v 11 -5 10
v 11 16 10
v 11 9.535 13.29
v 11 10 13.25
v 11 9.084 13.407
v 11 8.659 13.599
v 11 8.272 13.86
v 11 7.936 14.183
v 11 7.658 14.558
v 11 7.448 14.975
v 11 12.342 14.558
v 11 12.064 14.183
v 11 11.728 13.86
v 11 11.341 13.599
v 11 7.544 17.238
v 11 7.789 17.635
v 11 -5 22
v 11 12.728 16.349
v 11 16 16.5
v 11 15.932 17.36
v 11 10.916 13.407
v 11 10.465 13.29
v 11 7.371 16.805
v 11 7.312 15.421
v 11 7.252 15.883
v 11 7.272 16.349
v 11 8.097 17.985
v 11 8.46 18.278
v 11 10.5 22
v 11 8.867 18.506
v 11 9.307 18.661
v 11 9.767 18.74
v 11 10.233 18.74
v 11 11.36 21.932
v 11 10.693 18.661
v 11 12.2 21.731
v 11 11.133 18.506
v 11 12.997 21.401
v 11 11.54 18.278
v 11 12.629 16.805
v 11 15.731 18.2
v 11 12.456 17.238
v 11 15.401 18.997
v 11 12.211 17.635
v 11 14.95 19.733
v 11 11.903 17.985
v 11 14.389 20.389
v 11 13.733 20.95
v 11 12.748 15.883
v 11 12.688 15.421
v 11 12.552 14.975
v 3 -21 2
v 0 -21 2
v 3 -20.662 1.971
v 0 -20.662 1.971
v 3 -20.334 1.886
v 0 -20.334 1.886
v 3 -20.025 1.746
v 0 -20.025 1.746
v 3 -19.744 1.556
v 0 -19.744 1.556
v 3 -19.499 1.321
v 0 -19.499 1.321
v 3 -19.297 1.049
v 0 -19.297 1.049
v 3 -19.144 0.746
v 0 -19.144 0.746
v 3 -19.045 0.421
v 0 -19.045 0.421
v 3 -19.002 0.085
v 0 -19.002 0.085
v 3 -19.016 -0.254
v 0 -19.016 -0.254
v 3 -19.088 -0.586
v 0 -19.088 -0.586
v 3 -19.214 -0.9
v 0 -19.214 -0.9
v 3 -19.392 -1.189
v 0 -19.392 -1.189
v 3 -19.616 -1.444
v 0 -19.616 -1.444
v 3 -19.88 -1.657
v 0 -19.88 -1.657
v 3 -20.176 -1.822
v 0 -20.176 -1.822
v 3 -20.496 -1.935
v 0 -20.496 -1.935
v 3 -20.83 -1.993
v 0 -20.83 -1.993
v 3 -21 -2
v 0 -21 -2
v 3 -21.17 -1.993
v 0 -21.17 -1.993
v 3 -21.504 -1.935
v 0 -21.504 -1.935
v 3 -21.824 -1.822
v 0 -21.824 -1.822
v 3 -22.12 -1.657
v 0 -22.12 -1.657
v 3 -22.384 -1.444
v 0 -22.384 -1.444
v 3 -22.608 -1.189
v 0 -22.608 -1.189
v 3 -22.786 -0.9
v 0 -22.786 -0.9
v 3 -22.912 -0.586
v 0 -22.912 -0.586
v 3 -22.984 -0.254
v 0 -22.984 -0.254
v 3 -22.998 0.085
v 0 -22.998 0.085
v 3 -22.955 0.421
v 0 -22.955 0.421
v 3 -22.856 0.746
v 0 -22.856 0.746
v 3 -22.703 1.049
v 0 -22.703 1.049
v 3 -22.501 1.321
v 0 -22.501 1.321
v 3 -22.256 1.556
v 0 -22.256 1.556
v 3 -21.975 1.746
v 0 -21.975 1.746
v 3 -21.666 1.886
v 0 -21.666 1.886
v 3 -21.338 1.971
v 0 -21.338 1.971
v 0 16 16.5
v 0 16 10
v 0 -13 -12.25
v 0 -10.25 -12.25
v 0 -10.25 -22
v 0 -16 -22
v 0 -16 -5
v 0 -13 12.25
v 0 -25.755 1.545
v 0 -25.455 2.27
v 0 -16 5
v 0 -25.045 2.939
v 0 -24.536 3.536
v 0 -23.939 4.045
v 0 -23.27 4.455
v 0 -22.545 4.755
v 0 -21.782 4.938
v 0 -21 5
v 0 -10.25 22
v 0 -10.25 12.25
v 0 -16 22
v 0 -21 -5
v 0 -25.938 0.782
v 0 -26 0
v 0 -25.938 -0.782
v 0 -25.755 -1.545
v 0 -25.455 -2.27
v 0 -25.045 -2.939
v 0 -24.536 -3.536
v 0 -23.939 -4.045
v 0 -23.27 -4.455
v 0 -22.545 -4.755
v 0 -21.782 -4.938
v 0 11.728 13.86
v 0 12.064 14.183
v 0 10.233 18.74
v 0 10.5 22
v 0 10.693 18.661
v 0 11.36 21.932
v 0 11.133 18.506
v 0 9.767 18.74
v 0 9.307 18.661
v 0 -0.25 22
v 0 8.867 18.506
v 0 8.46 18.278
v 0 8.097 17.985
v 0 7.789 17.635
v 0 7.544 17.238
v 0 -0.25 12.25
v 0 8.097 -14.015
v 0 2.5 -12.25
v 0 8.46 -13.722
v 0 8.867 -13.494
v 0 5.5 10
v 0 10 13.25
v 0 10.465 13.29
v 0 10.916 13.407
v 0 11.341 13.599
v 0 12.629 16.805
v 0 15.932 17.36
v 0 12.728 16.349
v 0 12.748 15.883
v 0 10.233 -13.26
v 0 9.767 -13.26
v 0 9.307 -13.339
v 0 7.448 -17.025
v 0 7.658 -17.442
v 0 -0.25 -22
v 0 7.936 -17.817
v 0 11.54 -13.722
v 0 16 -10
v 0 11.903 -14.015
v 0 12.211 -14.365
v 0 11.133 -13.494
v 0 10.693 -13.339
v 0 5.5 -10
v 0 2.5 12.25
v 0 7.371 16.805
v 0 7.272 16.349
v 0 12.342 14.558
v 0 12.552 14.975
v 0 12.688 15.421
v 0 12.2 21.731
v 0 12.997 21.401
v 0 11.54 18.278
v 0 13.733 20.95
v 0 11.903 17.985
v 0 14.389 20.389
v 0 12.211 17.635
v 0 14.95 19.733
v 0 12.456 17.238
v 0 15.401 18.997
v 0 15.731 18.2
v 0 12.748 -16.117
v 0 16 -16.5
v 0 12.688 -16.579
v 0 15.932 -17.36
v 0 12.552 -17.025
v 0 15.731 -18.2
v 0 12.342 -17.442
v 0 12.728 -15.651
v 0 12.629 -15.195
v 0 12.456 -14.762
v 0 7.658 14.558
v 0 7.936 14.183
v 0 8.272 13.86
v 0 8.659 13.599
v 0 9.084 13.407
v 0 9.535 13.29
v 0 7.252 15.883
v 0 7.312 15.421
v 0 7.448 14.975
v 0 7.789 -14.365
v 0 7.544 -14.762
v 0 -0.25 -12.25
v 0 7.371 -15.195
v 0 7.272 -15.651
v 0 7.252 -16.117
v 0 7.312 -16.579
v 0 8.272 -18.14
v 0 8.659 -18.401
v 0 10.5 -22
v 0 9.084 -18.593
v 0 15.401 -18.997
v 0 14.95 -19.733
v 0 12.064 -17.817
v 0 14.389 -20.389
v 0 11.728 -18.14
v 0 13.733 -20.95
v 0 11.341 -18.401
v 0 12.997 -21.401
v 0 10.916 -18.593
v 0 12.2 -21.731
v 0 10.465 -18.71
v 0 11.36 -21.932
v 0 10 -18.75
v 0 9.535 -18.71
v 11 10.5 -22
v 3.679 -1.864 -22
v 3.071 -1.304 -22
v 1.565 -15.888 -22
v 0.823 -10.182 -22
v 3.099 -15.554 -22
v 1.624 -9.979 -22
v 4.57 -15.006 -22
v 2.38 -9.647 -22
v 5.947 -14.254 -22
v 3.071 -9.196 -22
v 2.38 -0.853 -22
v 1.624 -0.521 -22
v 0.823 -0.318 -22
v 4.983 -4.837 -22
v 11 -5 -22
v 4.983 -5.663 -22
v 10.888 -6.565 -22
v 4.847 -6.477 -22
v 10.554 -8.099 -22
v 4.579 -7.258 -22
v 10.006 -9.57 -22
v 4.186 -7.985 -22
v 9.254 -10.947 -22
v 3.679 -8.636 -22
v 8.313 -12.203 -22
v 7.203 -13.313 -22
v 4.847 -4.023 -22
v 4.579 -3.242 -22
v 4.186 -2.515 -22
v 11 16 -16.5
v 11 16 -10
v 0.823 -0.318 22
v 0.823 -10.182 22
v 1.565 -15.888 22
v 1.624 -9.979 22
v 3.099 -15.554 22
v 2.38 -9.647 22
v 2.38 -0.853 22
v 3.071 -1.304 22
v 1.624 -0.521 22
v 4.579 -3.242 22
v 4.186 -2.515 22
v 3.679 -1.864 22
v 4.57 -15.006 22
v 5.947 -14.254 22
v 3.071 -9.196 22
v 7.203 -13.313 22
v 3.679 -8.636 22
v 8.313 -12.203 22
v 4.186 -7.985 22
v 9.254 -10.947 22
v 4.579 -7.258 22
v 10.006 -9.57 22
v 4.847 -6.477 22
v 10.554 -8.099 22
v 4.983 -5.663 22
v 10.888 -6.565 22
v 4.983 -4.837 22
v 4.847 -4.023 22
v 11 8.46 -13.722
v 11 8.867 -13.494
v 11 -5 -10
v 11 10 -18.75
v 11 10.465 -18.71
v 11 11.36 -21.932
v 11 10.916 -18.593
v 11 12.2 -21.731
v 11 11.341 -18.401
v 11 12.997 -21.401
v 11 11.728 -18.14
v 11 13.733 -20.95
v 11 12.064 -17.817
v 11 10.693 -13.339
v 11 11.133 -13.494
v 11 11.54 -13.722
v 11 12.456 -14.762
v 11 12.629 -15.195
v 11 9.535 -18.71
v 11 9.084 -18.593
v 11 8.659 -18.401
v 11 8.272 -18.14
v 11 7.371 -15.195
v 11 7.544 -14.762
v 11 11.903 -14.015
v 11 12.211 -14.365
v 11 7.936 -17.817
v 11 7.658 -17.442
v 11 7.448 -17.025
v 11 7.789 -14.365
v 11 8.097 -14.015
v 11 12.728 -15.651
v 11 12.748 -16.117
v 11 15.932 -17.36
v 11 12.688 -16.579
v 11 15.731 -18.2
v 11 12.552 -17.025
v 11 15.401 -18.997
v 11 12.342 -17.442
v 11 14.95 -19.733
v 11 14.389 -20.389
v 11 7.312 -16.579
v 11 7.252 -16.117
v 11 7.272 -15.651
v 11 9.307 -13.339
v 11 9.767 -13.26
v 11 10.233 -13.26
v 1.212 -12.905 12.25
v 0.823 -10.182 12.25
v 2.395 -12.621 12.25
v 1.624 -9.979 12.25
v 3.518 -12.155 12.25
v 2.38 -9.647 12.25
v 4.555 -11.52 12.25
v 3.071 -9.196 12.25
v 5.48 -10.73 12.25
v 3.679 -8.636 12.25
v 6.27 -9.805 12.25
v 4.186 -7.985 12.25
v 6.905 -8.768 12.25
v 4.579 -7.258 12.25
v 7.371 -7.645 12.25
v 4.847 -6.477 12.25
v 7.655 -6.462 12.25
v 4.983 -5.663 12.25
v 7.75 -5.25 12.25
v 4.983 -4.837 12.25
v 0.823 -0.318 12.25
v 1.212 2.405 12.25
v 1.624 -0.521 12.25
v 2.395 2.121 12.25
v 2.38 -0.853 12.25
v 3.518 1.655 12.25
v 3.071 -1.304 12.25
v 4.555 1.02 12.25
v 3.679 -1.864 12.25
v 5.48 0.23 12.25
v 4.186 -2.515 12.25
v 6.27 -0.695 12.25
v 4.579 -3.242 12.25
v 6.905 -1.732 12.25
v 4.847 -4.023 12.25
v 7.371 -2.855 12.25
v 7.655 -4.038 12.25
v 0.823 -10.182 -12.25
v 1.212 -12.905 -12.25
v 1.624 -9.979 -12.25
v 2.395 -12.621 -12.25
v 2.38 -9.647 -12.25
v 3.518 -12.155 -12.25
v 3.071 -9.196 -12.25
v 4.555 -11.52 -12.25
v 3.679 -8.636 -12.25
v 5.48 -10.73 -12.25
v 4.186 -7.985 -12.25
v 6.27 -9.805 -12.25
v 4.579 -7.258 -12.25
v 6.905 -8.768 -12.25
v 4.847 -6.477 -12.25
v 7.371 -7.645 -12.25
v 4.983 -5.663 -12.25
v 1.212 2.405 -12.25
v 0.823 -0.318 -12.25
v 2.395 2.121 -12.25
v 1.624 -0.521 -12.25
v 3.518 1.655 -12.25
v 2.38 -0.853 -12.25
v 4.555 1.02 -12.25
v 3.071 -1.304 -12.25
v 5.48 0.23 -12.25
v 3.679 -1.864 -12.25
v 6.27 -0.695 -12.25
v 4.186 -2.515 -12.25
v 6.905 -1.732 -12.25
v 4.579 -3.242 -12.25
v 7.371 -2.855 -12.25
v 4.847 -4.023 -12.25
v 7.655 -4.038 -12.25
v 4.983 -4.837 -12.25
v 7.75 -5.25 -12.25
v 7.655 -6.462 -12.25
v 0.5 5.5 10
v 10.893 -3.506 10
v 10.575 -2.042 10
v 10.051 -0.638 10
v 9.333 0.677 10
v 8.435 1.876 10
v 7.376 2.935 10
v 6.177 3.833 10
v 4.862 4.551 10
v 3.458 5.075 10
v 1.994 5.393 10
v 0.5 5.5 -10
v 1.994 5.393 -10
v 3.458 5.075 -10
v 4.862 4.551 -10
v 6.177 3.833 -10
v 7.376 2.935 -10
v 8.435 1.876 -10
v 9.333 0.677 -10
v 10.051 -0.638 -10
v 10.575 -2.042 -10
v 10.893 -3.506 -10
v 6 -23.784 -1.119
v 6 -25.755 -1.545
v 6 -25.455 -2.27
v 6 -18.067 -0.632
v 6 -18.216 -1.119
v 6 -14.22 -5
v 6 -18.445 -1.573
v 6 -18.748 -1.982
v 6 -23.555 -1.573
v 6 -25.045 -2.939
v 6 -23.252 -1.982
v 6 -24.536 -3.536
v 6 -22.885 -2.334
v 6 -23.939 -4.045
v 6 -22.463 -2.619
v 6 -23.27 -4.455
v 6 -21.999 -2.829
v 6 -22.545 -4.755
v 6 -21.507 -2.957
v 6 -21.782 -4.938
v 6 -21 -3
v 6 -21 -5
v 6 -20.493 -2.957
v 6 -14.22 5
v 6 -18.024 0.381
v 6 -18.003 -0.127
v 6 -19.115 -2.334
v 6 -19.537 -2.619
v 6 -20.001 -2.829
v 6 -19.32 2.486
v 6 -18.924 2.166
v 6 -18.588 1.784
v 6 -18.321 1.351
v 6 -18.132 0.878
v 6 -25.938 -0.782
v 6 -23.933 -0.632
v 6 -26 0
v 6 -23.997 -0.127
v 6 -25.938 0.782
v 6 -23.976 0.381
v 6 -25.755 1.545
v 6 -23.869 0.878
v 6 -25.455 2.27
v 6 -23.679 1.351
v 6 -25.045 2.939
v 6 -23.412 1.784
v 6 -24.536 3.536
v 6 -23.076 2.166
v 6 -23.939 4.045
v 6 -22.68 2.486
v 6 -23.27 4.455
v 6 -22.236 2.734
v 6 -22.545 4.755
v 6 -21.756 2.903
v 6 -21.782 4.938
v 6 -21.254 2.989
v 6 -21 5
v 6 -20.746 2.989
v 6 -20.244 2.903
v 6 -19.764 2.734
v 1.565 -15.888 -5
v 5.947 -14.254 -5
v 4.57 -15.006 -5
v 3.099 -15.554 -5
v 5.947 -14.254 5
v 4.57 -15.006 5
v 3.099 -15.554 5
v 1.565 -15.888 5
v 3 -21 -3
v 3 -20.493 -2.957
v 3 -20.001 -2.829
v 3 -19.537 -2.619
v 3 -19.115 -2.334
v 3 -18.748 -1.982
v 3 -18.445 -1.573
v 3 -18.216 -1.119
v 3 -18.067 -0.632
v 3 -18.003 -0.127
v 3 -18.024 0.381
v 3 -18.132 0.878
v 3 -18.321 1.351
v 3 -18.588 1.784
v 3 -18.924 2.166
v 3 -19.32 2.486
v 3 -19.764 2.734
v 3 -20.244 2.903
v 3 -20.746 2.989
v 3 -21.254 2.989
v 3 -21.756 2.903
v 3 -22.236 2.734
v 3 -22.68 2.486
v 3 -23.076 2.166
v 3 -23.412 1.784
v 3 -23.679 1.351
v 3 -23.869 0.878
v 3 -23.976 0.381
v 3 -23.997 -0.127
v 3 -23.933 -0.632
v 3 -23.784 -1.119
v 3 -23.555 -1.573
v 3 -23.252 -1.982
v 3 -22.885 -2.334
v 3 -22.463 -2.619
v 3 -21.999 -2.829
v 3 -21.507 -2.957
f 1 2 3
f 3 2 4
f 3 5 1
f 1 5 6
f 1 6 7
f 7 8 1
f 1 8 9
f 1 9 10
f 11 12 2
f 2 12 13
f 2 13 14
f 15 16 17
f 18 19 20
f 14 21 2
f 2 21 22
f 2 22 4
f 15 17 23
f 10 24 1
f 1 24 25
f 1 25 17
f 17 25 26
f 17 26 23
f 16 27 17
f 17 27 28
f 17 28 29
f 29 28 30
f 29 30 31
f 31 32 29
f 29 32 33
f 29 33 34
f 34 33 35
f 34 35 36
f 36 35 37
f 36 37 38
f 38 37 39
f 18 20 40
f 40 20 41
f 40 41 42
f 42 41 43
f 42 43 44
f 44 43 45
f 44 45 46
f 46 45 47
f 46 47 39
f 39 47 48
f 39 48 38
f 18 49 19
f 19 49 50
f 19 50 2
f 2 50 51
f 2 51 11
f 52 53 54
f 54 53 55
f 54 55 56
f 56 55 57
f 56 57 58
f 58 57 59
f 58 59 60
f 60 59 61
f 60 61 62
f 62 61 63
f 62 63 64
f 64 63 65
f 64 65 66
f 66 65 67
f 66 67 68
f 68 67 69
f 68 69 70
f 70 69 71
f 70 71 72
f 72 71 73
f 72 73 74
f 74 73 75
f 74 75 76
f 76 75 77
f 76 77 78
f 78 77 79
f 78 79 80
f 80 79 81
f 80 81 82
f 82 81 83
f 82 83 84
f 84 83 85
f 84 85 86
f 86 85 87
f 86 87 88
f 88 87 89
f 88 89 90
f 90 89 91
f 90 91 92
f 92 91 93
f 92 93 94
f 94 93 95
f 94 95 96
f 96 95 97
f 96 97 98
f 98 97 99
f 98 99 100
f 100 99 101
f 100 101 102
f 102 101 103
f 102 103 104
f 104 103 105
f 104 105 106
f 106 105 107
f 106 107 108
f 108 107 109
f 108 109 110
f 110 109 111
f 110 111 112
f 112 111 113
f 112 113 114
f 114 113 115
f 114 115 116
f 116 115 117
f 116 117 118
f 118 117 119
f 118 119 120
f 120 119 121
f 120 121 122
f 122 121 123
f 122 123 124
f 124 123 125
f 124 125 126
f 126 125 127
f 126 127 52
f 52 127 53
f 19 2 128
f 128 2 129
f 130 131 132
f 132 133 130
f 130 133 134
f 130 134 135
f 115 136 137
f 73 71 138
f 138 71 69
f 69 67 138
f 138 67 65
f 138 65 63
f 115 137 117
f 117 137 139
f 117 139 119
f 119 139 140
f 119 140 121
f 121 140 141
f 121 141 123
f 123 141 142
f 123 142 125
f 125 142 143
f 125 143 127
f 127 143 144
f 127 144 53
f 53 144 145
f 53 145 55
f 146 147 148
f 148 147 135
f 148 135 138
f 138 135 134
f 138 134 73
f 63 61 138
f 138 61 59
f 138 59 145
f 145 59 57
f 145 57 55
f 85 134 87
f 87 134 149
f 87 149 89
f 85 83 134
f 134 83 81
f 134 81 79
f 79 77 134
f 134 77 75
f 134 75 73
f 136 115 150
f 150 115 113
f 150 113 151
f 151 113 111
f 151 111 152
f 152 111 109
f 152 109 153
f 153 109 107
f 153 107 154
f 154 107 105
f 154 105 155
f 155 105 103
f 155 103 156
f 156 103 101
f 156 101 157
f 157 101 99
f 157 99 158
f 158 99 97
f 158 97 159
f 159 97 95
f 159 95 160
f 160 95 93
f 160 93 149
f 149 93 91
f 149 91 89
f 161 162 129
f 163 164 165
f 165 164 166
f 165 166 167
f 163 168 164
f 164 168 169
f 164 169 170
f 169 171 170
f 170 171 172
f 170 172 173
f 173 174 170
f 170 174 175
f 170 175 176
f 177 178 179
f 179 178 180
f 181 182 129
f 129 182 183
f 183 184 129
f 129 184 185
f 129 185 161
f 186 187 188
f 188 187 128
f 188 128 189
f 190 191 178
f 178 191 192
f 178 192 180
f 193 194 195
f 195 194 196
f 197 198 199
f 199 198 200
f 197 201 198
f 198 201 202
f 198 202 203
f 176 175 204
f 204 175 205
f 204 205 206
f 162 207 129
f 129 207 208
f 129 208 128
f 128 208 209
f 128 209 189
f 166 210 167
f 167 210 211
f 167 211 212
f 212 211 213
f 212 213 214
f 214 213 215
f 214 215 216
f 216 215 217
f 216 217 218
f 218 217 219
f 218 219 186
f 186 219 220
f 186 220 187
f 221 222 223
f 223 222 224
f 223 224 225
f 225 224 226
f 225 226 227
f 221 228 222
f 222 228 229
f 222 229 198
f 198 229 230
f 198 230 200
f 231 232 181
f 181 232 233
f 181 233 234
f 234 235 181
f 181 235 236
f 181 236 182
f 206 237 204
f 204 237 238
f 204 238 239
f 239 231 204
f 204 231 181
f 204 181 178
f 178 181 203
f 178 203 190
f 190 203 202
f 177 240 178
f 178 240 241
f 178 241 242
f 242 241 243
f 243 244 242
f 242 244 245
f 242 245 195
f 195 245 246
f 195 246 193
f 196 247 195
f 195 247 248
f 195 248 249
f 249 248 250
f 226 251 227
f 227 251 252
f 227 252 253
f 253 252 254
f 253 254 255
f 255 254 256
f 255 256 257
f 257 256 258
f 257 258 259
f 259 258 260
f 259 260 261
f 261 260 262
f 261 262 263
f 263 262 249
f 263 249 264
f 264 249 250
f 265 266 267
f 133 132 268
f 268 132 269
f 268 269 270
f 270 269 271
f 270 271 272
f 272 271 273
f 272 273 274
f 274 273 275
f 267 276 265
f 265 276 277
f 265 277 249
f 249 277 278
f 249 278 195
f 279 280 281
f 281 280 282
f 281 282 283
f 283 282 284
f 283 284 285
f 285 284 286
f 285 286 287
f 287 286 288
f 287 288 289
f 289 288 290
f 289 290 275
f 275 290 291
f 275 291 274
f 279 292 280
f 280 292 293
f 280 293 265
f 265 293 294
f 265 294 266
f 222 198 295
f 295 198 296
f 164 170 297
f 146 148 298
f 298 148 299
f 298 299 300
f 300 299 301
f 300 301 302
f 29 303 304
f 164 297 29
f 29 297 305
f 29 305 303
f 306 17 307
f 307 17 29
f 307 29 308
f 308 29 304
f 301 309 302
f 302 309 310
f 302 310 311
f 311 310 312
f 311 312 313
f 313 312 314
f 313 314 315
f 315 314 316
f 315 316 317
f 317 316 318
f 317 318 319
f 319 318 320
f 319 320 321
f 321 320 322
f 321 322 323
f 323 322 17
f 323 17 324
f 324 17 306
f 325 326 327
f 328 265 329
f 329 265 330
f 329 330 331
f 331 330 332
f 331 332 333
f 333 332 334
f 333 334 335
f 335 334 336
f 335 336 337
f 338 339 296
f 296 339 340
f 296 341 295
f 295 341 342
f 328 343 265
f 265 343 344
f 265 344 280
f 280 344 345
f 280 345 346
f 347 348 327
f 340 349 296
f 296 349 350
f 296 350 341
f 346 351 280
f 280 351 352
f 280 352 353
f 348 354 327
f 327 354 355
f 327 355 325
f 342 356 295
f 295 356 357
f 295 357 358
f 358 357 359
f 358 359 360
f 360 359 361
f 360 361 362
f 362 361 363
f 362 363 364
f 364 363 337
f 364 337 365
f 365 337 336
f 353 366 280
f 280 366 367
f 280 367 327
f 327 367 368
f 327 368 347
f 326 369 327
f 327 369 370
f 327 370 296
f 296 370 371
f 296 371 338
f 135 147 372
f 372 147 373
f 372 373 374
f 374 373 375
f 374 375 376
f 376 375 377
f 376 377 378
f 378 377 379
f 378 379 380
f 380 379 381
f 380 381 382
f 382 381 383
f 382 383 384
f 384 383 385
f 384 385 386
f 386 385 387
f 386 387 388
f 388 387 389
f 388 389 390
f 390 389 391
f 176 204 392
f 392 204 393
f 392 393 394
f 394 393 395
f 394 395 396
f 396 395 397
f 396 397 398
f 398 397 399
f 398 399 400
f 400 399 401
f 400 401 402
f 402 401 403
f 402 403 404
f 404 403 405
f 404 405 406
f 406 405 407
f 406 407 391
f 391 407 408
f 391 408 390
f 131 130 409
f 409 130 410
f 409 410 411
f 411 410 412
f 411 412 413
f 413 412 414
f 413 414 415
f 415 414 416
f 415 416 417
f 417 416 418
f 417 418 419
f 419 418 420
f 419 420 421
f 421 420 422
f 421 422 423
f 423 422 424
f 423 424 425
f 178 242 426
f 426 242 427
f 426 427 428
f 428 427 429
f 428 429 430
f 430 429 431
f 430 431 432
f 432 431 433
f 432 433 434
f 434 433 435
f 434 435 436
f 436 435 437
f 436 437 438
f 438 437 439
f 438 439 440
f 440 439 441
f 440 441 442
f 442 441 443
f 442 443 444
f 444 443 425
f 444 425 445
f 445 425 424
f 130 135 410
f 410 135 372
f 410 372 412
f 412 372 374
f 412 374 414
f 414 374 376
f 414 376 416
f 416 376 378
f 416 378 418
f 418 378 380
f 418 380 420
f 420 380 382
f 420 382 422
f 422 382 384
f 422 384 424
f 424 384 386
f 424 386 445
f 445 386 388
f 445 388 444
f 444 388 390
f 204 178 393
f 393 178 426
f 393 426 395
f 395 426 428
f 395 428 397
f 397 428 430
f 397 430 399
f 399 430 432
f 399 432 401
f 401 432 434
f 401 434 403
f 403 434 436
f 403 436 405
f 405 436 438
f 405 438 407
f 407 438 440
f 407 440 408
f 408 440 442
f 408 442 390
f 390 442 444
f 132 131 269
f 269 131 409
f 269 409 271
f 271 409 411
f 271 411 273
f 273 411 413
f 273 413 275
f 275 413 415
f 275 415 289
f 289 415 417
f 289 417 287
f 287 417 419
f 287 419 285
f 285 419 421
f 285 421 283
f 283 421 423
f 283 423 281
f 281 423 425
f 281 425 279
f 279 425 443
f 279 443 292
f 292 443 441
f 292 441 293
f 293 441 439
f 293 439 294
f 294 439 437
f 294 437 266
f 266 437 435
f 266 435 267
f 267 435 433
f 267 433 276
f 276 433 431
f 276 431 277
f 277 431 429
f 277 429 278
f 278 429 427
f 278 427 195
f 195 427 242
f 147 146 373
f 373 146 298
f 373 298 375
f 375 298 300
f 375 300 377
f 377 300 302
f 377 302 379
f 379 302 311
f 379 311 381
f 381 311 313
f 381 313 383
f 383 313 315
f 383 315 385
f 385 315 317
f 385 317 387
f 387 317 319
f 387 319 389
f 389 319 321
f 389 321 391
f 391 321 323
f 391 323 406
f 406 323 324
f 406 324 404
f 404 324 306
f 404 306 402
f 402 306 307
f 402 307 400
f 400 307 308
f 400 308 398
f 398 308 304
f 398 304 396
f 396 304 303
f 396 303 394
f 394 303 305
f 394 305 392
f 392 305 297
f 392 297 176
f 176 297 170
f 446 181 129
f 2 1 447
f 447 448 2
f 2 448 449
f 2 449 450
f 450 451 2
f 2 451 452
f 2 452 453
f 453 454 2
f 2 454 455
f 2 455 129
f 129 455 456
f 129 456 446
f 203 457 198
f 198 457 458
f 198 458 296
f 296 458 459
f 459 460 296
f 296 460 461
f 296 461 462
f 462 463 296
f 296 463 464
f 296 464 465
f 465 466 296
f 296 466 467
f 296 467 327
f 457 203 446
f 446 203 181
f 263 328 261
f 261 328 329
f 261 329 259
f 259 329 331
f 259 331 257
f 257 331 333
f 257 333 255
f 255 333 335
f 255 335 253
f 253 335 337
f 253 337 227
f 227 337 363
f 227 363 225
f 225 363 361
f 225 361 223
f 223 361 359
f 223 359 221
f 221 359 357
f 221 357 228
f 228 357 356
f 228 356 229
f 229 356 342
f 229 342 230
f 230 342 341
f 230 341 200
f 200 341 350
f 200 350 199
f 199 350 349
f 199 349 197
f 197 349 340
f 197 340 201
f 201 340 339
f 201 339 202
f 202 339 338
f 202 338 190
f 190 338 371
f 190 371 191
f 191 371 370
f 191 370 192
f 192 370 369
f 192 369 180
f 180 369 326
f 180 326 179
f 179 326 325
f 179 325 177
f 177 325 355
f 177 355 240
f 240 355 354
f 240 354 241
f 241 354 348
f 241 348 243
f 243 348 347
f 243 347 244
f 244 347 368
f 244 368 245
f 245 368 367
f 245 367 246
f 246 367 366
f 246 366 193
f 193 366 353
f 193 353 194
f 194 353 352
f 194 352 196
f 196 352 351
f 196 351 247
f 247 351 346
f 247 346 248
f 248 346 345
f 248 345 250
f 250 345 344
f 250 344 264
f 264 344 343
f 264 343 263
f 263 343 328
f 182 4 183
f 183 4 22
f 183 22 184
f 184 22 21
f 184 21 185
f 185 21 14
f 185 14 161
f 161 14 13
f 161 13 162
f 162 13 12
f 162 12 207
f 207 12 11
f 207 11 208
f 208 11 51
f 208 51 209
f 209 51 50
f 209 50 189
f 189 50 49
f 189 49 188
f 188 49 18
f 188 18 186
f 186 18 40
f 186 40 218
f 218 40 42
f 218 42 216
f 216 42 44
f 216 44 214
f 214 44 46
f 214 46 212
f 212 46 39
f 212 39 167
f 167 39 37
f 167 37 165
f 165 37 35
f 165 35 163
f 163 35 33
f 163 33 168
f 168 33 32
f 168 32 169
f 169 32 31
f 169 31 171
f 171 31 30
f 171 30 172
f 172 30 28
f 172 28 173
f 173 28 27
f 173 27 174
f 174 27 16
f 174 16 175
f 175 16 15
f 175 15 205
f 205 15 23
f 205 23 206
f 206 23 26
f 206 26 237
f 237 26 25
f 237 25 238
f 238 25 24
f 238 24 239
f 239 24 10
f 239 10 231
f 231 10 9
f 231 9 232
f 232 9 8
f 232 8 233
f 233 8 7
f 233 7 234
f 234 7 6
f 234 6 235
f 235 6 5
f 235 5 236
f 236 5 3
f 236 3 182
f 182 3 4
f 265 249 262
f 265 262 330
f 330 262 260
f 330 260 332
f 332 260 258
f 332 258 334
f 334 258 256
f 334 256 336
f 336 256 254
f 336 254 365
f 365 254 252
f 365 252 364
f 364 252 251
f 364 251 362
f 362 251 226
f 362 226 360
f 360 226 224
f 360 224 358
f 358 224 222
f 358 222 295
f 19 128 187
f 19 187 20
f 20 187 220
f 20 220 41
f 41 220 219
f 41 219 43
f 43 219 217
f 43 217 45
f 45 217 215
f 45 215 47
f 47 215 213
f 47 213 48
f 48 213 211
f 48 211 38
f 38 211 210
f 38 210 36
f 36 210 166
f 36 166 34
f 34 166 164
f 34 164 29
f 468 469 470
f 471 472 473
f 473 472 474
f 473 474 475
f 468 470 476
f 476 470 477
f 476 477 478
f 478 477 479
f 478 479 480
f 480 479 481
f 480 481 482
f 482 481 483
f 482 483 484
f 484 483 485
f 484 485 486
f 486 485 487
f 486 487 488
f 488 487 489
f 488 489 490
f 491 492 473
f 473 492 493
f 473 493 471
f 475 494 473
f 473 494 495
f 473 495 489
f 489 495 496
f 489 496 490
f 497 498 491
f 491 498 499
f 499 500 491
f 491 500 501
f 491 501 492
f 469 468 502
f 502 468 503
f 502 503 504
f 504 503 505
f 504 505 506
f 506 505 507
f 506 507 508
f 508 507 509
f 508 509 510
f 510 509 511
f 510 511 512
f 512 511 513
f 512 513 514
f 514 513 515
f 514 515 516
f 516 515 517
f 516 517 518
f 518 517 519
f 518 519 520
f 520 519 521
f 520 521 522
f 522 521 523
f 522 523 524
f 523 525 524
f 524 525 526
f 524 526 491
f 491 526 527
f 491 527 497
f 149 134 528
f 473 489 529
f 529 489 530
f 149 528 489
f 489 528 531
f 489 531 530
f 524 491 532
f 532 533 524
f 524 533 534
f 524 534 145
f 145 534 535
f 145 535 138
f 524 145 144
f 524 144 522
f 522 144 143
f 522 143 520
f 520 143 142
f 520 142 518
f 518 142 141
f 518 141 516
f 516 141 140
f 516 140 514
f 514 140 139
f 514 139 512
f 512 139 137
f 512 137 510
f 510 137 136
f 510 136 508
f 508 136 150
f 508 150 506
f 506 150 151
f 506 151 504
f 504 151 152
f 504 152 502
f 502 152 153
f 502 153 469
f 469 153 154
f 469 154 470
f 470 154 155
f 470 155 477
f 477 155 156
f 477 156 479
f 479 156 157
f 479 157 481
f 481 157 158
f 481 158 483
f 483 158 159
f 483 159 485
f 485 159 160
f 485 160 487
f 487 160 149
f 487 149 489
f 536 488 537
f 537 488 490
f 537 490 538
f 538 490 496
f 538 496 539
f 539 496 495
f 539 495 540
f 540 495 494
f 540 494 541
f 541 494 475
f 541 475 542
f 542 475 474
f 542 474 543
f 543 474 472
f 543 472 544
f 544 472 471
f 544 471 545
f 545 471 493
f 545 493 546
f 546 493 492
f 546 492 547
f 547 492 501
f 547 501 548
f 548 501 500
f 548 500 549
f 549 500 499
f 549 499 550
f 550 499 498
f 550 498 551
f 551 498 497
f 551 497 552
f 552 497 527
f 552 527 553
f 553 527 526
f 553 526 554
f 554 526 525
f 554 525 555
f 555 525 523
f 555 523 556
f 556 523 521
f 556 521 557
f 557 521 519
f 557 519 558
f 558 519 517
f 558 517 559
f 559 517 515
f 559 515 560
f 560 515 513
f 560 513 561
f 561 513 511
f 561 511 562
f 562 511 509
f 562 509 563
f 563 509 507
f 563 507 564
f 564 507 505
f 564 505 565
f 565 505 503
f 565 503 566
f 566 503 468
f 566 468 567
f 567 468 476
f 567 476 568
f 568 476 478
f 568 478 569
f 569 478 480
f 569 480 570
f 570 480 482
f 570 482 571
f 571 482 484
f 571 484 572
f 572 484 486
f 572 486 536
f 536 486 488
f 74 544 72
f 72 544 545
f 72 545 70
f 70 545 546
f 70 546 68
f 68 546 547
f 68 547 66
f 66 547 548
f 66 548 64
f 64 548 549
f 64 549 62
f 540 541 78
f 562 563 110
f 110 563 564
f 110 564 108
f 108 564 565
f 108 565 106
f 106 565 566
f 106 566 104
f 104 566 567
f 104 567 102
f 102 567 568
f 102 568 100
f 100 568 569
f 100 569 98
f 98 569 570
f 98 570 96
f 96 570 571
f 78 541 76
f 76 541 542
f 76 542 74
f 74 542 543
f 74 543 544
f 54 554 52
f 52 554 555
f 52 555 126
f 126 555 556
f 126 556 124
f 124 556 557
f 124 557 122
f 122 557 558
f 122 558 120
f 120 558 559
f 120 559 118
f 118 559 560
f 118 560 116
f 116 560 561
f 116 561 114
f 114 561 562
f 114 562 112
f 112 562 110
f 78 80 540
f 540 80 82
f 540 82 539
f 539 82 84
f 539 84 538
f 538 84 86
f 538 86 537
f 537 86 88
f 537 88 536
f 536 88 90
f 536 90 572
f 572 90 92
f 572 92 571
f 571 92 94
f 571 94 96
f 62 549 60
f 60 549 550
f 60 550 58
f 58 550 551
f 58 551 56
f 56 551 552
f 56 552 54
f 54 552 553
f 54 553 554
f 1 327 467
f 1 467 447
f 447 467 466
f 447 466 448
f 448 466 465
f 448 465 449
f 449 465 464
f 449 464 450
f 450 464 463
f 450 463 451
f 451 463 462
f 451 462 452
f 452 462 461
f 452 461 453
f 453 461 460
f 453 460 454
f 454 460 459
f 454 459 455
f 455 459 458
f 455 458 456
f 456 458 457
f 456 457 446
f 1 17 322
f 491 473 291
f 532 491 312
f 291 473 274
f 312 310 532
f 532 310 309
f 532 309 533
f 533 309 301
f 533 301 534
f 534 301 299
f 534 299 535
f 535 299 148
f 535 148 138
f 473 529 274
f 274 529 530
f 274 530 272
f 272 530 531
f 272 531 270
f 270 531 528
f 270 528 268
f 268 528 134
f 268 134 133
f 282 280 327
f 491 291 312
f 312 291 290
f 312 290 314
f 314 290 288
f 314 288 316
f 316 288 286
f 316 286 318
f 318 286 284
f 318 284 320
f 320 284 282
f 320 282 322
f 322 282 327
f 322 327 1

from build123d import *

# Parameters (mm, degrees)
SKETCH1_W               = 44
SKETCH1_H               = 32
BOSS_EXTRUDE1_DEPTH     = 11
SKETCH2_W               = 24.5
SKETCH2_H               = 15.5
CUT_EXTRUDE1_DEPTH      = 7.75
FILLET1_R               = 7.75
CUT_EXTRUDE2_DEPTH      = 40.370833113
CUT_EXTRUDE2_DEPTH_BACK = 40.370833113
SKETCH4_R               = 2.75
SKETCH4_W               = 20
SKETCH4_H               = 10.5
CUT_EXTRUDE3_DEPTH      = 30.342801502
FILLET4_R               = 5.5
SKETCH7_W               = 10
SKETCH7_H               = 10
SKETCH7_R               = 2
BOSS_EXTRUDE5_DEPTH     = 6
FILLET5_R               = 5
CUT_EXTRUDE7_START      = -3
SKETCH9_R               = 3
SKETCH9_R_2             = 2
CUT_EXTRUDE7_DEPTH      = 3
FILLET7_R               = 10.5
FILLET8_R               = 11


# Some blends are built 0.0001 mm under size
with BuildPart() as part:
    # Sketch1 → Boss-Extrude1 (new body)
    with BuildSketch(Plane(origin=(0, 0, 0), x_dir=(0, 0, -1), z_dir=(1, 0, 0))):
        Rectangle(SKETCH1_W, SKETCH1_H)
    extrude(amount=BOSS_EXTRUDE1_DEPTH)

    # Sketch2 → Cut-Extrude1 (cut)
    with BuildSketch(Plane(origin=(0, 0, 0), x_dir=(0, 0, -1), z_dir=(1, 0, 0))):
        with Locations((0, -5.25)):
            Rectangle(SKETCH2_W, SKETCH2_H)
    extrude(amount=CUT_EXTRUDE1_DEPTH, mode=Mode.SUBTRACT)

    # Fillet1
    fillet1_edges = [part.edges().sort_by_distance(p)[0] for p in [
        (7.75, 2.5, 0),
        (7.75, -13, 0),
    ]]
    fillet(fillet1_edges, radius=FILLET1_R - 0.0001)  # a hair under: the kernel refuses the full size

    # Sketch3 → Cut-Extrude2 (cut, two sides: drawn at the far end of the back side and taken through both)
    with BuildSketch(Plane.XY.offset(-12.25).offset(-CUT_EXTRUDE2_DEPTH_BACK)):
        with BuildLine():
            ThreePointArc((0, -10.25), (3.535533906, -8.785533906), (5, -5.25))
            ThreePointArc((5, -5.25), (3.535533906, -1.714466094), (0, -0.25))
            Line((0, -0.25), (0, -10.25))
        make_face()
        with BuildLine():
            Line((0, -10.25), (0, -0.25))
            ThreePointArc((0, -0.25), (-5, -5.25), (0, -10.25))
        make_face()
    extrude(amount=CUT_EXTRUDE2_DEPTH + CUT_EXTRUDE2_DEPTH_BACK, mode=Mode.SUBTRACT)

    # Sketch4 → Cut-Extrude3 (cut, through all)
    with BuildSketch(Plane(origin=(11, 0, 0), x_dir=(0, 0, -1), z_dir=(1, 0, 0))):
        with Locations((-16, 10)):
            Circle(SKETCH4_R)
        with Locations((16, 10)):
            Circle(SKETCH4_R)
        with Locations((0, 10.75)):
            Rectangle(SKETCH4_W, SKETCH4_H)
    extrude(amount=-CUT_EXTRUDE3_DEPTH, mode=Mode.SUBTRACT)

    # Fillet4
    fillet4_edges = [part.edges().sort_by_distance(p)[0] for p in [
        (5.5, 16, 22),
        (5.5, 16, -22),
    ]]
    fillet(fillet4_edges, radius=FILLET4_R)

    # Sketch7 → Boss-Extrude5 (add)
    with BuildSketch(Plane(origin=(0, 0, 0), x_dir=(0, 0, -1), z_dir=(1, 0, 0))):
        with Locations((0, -21)):
            Rectangle(SKETCH7_W, SKETCH7_H)
        with Locations((0, -21)):
            Circle(SKETCH7_R, mode=Mode.SUBTRACT)
    extrude(amount=BOSS_EXTRUDE5_DEPTH)

    # Fillet5
    fillet5_edges = [part.edges().sort_by_distance(p)[0] for p in [
        (3, -26, -5),
        (3, -26, 5),
    ]]
    fillet(fillet5_edges, radius=FILLET5_R - 0.0001)  # a hair under: the kernel refuses the full size

    # Sketch9 → Cut-Extrude7 (cut)
    with BuildSketch(Plane(origin=(6, 0, 0), x_dir=(0, 0, -1), z_dir=(1, 0, 0)).offset(CUT_EXTRUDE7_START)):
        with Locations((0, -21)):
            Circle(SKETCH9_R)
        with Locations((0, -21)):
            Circle(SKETCH9_R_2, mode=Mode.SUBTRACT)
    extrude(amount=CUT_EXTRUDE7_DEPTH, mode=Mode.SUBTRACT)

    # Fillet7
    fillet7_edges = [part.edges().sort_by_distance(p)[0] for p in [
        (11, 5.5, 0),
    ]]
    fillet(fillet7_edges, radius=FILLET7_R)

    # Fillet8
    # the kernel refuses this fillet: 11 mm, written as the material it takes off along each edge
    with BuildSketch(Plane(origin=(11, -16, 49.5), x_dir=(0, 1, 0), z_dir=(0, 0, -1))) as fillet8_piece_1_section:
        with BuildLine():
            CenterArc((FILLET8_R, -FILLET8_R), FILLET8_R, 90, 90)
            Line((0, -FILLET8_R), (0, 0))
            Line((0, 0), (FILLET8_R, 0))
        make_face()
    fillet8_piece_1 = extrude(amount=99, mode=Mode.PRIVATE)
    fillet8_piece_1 = split(fillet8_piece_1, bisect_by=Plane(origin=(6, -13.119412113, 27.25), z_dir=(1, 0, 0)), keep=Keep.TOP, mode=Mode.PRIVATE)
    fillet8_piece_1 = split(fillet8_piece_1, bisect_by=Plane(origin=(9.313036117, -13.119412113, 5), z_dir=(0, 0, 1)), keep=Keep.TOP, mode=Mode.PRIVATE)
    add(fillet8_piece_1, mode=Mode.SUBTRACT)
    with BuildSketch(Plane(origin=(11, -16, 49.5), x_dir=(0, 1, 0), z_dir=(0, 0, -1))) as fillet8_piece_2_section:
        with BuildLine():
            CenterArc((FILLET8_R, -FILLET8_R), FILLET8_R, 90, 90)
            Line((0, -FILLET8_R), (0, 0))
            Line((0, 0), (FILLET8_R, 0))
        make_face()
    fillet8_piece_2 = extrude(amount=99, mode=Mode.PRIVATE)
    fillet8_piece_2 = split(fillet8_piece_2, bisect_by=Plane(origin=(6, -15.650616863, 27.25), z_dir=(-1, 0, 0)), keep=Keep.TOP, mode=Mode.PRIVATE)
    fillet8_piece_2 = split(fillet8_piece_2, bisect_by=Plane(origin=(4.102097244, -15.650616863, 5), z_dir=(0, 0, 1)), keep=Keep.TOP, mode=Mode.PRIVATE)
    add(fillet8_piece_2, mode=Mode.SUBTRACT)
    with BuildSketch(Plane(origin=(11, -16, 49.5), x_dir=(0, 1, 0), z_dir=(0, 0, -1))) as fillet8_piece_3_section:
        with BuildLine():
            CenterArc((FILLET8_R, -FILLET8_R), FILLET8_R, 90, 90)
            Line((0, -FILLET8_R), (0, 0))
            Line((0, 0), (FILLET8_R, 0))
        make_face()
    fillet8_piece_3 = extrude(amount=99, mode=Mode.PRIVATE)
    fillet8_piece_3 = split(fillet8_piece_3, bisect_by=Plane(origin=(6, -13.119412113, 0), z_dir=(1, 0, 0)), keep=Keep.TOP, mode=Mode.PRIVATE)
    fillet8_piece_3 = split(fillet8_piece_3, bisect_by=Plane(origin=(9.313036117, -13.119412113, -5), z_dir=(0, 0, 1)), keep=Keep.TOP, mode=Mode.PRIVATE)
    fillet8_piece_3 = split(fillet8_piece_3, bisect_by=Plane(origin=(9.313036117, -13.119412113, 5), z_dir=(0, 0, -1)), keep=Keep.TOP, mode=Mode.PRIVATE)
    add(fillet8_piece_3, mode=Mode.SUBTRACT)
    with BuildSketch(Plane(origin=(11, -16, 49.5), x_dir=(0, 1, 0), z_dir=(0, 0, -1))) as fillet8_piece_4_section:
        with BuildLine():
            CenterArc((FILLET8_R, -FILLET8_R), FILLET8_R, 90, 90)
            Line((0, -FILLET8_R), (0, 0))
            Line((0, 0), (FILLET8_R, 0))
        make_face()
    fillet8_piece_4 = extrude(amount=99, mode=Mode.PRIVATE)
    fillet8_piece_4 = split(fillet8_piece_4, bisect_by=Plane(origin=(6, -13.119412113, -27.25), z_dir=(1, 0, 0)), keep=Keep.TOP, mode=Mode.PRIVATE)
    fillet8_piece_4 = split(fillet8_piece_4, bisect_by=Plane(origin=(9.313036117, -13.119412113, -5), z_dir=(0, 0, -1)), keep=Keep.TOP, mode=Mode.PRIVATE)
    add(fillet8_piece_4, mode=Mode.SUBTRACT)
    with BuildSketch(Plane(origin=(11, -16, 49.5), x_dir=(0, 1, 0), z_dir=(0, 0, -1))) as fillet8_piece_5_section:
        with BuildLine():
            CenterArc((FILLET8_R, -FILLET8_R), FILLET8_R, 90, 90)
            Line((0, -FILLET8_R), (0, 0))
            Line((0, 0), (FILLET8_R, 0))
        make_face()
    fillet8_piece_5 = extrude(amount=99, mode=Mode.PRIVATE)
    fillet8_piece_5 = split(fillet8_piece_5, bisect_by=Plane(origin=(6, -15.650616863, -27.25), z_dir=(-1, 0, 0)), keep=Keep.TOP, mode=Mode.PRIVATE)
    fillet8_piece_5 = split(fillet8_piece_5, bisect_by=Plane(origin=(4.102097244, -15.650616863, -5), z_dir=(0, 0, -1)), keep=Keep.TOP, mode=Mode.PRIVATE)
    add(fillet8_piece_5, mode=Mode.SUBTRACT)


solid = part.part
